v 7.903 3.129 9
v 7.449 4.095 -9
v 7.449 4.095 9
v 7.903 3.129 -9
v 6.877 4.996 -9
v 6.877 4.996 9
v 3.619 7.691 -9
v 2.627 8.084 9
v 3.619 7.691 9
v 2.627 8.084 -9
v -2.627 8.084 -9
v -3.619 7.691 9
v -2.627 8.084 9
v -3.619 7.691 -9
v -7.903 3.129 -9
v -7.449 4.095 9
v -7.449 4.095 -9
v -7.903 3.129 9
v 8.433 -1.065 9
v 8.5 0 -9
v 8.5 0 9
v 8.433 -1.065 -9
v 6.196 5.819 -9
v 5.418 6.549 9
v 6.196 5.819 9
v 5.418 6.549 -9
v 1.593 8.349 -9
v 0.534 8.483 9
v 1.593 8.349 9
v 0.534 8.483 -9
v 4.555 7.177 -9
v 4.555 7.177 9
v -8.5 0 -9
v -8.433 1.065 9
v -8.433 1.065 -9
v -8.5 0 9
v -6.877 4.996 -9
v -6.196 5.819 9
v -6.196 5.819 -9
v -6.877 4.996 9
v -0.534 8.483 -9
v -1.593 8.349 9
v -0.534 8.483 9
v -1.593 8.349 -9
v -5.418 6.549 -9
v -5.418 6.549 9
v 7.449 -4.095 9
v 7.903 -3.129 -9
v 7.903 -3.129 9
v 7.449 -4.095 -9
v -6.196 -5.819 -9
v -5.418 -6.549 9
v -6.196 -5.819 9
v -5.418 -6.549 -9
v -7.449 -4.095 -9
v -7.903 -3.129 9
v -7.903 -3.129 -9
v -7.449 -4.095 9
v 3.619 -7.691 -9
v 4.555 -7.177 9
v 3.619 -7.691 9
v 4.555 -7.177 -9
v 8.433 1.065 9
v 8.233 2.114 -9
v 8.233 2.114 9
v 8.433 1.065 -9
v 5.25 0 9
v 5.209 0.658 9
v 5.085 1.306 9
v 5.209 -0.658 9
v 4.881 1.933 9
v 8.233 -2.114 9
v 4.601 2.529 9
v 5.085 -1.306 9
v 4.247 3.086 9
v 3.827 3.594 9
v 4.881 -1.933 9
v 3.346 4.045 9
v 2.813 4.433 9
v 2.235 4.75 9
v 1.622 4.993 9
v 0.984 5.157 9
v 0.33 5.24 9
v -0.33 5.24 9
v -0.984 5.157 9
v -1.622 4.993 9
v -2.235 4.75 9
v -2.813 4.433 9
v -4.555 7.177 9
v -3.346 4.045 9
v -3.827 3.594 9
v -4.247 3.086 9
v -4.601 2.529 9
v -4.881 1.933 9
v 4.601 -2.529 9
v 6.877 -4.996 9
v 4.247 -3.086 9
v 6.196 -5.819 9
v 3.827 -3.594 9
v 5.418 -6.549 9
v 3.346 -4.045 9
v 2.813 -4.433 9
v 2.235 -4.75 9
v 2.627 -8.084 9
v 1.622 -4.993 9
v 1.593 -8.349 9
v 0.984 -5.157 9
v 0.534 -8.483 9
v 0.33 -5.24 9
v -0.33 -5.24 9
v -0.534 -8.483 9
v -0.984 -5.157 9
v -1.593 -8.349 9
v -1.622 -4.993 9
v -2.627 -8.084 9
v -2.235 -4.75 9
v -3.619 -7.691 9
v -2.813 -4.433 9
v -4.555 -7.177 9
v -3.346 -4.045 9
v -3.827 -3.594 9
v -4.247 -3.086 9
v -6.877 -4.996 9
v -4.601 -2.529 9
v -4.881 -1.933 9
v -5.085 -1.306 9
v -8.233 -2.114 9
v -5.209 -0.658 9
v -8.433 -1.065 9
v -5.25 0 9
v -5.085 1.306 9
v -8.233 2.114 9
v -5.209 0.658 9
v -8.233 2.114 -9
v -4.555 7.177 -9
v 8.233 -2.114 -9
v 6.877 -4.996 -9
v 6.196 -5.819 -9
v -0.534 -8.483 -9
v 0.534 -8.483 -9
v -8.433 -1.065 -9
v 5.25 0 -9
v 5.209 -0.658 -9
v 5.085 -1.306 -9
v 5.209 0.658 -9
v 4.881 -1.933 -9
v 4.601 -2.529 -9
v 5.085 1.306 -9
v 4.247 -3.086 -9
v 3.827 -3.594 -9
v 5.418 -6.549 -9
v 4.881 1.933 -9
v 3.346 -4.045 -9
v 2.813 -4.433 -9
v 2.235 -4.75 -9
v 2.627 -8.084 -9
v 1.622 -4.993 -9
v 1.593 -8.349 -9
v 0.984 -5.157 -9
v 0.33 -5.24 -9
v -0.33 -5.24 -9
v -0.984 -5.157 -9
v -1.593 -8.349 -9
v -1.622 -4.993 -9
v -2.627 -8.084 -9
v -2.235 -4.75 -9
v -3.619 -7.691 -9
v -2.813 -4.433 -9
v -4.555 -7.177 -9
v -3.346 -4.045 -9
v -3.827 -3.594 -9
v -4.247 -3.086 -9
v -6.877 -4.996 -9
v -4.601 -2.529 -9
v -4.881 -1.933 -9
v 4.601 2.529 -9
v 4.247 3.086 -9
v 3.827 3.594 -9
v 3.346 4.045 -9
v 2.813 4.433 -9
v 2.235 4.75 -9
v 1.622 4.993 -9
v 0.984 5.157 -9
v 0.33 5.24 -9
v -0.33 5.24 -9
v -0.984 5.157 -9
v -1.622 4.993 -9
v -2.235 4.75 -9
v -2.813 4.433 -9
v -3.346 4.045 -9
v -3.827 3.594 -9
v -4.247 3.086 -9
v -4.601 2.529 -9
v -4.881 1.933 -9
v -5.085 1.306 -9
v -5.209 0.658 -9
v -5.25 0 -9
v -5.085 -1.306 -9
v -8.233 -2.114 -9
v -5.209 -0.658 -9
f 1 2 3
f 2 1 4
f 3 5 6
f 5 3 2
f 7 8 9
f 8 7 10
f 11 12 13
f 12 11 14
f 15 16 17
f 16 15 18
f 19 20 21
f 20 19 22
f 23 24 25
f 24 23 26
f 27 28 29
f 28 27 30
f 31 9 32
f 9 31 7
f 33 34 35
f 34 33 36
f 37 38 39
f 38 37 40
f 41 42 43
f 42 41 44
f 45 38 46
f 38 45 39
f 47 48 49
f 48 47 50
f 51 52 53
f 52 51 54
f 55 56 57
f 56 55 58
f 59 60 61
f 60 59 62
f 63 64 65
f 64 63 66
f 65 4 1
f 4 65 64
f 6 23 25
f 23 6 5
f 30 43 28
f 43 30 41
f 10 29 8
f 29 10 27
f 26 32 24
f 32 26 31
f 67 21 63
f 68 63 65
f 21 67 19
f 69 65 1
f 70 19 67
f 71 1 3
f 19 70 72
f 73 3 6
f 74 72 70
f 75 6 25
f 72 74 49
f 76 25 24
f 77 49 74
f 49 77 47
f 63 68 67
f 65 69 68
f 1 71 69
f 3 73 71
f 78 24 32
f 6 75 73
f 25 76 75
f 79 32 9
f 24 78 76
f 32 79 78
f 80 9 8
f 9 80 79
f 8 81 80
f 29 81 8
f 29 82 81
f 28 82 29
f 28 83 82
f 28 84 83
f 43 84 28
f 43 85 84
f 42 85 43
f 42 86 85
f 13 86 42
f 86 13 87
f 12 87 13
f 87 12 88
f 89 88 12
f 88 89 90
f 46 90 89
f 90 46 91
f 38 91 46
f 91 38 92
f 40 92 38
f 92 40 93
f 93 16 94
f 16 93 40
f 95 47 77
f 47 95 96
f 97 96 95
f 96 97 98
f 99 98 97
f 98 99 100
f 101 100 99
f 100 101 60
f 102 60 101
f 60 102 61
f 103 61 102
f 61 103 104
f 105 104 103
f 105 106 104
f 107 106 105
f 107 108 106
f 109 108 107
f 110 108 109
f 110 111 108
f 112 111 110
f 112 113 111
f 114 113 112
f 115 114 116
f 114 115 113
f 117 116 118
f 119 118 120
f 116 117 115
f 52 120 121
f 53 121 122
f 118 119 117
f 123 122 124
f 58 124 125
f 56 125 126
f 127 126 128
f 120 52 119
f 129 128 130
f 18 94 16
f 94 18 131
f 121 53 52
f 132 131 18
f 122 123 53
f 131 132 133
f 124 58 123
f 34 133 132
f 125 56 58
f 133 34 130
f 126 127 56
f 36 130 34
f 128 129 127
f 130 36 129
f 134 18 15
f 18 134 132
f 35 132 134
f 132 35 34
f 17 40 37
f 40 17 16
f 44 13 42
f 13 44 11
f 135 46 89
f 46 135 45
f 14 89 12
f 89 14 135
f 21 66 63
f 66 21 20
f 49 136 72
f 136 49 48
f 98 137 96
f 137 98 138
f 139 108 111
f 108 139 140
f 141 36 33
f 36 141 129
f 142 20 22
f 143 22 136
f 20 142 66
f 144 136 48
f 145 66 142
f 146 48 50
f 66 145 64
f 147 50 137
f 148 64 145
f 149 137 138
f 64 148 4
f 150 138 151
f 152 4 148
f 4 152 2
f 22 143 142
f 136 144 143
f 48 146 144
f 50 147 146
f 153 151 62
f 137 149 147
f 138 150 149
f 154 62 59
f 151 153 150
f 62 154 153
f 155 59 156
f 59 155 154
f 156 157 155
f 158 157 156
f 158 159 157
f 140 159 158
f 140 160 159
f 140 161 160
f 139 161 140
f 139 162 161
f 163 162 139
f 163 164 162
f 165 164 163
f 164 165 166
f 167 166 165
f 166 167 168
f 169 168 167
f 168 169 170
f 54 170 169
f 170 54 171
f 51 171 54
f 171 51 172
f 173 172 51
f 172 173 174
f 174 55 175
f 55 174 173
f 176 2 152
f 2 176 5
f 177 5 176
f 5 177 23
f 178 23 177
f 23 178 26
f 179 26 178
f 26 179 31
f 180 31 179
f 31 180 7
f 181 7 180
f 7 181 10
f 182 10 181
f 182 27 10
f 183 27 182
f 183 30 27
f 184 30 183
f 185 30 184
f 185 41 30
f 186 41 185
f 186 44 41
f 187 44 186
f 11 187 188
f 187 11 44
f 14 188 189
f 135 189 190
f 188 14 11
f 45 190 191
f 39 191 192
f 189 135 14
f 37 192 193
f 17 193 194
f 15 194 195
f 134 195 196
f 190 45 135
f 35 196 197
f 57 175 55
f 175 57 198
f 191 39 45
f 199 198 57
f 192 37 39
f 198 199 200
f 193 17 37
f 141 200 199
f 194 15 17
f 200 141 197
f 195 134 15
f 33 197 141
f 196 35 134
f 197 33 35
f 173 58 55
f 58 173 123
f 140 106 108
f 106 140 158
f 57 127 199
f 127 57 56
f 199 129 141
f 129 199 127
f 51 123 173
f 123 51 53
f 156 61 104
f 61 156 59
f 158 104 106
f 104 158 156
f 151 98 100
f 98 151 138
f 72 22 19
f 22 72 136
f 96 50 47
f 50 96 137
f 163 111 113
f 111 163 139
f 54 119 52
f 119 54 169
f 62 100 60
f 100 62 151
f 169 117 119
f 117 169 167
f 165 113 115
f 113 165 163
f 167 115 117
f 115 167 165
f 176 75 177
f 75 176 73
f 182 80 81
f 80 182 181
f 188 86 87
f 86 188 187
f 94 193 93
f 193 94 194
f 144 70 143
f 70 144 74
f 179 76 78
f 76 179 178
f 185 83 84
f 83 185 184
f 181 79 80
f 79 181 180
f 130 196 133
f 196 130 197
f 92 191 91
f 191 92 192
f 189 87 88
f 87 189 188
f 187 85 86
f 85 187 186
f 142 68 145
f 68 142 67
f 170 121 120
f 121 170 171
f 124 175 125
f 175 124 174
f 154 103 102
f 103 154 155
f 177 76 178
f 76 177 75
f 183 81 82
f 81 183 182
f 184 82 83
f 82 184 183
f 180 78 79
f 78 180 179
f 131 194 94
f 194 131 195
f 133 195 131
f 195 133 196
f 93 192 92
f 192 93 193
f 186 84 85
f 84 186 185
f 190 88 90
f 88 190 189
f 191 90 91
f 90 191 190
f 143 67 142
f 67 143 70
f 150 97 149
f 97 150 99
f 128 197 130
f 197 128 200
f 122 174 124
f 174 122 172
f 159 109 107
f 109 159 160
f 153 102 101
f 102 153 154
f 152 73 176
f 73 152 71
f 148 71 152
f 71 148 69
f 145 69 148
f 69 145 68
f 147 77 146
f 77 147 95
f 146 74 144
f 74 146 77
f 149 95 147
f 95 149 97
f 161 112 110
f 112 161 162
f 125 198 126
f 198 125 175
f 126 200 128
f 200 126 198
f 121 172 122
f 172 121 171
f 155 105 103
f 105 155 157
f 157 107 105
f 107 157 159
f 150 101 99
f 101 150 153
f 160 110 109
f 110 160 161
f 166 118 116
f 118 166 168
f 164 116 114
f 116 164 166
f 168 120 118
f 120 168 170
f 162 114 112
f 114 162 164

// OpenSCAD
$fn = 50;


difference() {
	union() {
		translate(v = [0, 0, -9.0000000000]) {
			cylinder(h = 18, r = 8.5000000000);
		}
	}
	union() {
		translate(v = [0, 0, -100.0000000000]) {
			cylinder(h = 200, r = 5.2500000000);
		}
	}
}
